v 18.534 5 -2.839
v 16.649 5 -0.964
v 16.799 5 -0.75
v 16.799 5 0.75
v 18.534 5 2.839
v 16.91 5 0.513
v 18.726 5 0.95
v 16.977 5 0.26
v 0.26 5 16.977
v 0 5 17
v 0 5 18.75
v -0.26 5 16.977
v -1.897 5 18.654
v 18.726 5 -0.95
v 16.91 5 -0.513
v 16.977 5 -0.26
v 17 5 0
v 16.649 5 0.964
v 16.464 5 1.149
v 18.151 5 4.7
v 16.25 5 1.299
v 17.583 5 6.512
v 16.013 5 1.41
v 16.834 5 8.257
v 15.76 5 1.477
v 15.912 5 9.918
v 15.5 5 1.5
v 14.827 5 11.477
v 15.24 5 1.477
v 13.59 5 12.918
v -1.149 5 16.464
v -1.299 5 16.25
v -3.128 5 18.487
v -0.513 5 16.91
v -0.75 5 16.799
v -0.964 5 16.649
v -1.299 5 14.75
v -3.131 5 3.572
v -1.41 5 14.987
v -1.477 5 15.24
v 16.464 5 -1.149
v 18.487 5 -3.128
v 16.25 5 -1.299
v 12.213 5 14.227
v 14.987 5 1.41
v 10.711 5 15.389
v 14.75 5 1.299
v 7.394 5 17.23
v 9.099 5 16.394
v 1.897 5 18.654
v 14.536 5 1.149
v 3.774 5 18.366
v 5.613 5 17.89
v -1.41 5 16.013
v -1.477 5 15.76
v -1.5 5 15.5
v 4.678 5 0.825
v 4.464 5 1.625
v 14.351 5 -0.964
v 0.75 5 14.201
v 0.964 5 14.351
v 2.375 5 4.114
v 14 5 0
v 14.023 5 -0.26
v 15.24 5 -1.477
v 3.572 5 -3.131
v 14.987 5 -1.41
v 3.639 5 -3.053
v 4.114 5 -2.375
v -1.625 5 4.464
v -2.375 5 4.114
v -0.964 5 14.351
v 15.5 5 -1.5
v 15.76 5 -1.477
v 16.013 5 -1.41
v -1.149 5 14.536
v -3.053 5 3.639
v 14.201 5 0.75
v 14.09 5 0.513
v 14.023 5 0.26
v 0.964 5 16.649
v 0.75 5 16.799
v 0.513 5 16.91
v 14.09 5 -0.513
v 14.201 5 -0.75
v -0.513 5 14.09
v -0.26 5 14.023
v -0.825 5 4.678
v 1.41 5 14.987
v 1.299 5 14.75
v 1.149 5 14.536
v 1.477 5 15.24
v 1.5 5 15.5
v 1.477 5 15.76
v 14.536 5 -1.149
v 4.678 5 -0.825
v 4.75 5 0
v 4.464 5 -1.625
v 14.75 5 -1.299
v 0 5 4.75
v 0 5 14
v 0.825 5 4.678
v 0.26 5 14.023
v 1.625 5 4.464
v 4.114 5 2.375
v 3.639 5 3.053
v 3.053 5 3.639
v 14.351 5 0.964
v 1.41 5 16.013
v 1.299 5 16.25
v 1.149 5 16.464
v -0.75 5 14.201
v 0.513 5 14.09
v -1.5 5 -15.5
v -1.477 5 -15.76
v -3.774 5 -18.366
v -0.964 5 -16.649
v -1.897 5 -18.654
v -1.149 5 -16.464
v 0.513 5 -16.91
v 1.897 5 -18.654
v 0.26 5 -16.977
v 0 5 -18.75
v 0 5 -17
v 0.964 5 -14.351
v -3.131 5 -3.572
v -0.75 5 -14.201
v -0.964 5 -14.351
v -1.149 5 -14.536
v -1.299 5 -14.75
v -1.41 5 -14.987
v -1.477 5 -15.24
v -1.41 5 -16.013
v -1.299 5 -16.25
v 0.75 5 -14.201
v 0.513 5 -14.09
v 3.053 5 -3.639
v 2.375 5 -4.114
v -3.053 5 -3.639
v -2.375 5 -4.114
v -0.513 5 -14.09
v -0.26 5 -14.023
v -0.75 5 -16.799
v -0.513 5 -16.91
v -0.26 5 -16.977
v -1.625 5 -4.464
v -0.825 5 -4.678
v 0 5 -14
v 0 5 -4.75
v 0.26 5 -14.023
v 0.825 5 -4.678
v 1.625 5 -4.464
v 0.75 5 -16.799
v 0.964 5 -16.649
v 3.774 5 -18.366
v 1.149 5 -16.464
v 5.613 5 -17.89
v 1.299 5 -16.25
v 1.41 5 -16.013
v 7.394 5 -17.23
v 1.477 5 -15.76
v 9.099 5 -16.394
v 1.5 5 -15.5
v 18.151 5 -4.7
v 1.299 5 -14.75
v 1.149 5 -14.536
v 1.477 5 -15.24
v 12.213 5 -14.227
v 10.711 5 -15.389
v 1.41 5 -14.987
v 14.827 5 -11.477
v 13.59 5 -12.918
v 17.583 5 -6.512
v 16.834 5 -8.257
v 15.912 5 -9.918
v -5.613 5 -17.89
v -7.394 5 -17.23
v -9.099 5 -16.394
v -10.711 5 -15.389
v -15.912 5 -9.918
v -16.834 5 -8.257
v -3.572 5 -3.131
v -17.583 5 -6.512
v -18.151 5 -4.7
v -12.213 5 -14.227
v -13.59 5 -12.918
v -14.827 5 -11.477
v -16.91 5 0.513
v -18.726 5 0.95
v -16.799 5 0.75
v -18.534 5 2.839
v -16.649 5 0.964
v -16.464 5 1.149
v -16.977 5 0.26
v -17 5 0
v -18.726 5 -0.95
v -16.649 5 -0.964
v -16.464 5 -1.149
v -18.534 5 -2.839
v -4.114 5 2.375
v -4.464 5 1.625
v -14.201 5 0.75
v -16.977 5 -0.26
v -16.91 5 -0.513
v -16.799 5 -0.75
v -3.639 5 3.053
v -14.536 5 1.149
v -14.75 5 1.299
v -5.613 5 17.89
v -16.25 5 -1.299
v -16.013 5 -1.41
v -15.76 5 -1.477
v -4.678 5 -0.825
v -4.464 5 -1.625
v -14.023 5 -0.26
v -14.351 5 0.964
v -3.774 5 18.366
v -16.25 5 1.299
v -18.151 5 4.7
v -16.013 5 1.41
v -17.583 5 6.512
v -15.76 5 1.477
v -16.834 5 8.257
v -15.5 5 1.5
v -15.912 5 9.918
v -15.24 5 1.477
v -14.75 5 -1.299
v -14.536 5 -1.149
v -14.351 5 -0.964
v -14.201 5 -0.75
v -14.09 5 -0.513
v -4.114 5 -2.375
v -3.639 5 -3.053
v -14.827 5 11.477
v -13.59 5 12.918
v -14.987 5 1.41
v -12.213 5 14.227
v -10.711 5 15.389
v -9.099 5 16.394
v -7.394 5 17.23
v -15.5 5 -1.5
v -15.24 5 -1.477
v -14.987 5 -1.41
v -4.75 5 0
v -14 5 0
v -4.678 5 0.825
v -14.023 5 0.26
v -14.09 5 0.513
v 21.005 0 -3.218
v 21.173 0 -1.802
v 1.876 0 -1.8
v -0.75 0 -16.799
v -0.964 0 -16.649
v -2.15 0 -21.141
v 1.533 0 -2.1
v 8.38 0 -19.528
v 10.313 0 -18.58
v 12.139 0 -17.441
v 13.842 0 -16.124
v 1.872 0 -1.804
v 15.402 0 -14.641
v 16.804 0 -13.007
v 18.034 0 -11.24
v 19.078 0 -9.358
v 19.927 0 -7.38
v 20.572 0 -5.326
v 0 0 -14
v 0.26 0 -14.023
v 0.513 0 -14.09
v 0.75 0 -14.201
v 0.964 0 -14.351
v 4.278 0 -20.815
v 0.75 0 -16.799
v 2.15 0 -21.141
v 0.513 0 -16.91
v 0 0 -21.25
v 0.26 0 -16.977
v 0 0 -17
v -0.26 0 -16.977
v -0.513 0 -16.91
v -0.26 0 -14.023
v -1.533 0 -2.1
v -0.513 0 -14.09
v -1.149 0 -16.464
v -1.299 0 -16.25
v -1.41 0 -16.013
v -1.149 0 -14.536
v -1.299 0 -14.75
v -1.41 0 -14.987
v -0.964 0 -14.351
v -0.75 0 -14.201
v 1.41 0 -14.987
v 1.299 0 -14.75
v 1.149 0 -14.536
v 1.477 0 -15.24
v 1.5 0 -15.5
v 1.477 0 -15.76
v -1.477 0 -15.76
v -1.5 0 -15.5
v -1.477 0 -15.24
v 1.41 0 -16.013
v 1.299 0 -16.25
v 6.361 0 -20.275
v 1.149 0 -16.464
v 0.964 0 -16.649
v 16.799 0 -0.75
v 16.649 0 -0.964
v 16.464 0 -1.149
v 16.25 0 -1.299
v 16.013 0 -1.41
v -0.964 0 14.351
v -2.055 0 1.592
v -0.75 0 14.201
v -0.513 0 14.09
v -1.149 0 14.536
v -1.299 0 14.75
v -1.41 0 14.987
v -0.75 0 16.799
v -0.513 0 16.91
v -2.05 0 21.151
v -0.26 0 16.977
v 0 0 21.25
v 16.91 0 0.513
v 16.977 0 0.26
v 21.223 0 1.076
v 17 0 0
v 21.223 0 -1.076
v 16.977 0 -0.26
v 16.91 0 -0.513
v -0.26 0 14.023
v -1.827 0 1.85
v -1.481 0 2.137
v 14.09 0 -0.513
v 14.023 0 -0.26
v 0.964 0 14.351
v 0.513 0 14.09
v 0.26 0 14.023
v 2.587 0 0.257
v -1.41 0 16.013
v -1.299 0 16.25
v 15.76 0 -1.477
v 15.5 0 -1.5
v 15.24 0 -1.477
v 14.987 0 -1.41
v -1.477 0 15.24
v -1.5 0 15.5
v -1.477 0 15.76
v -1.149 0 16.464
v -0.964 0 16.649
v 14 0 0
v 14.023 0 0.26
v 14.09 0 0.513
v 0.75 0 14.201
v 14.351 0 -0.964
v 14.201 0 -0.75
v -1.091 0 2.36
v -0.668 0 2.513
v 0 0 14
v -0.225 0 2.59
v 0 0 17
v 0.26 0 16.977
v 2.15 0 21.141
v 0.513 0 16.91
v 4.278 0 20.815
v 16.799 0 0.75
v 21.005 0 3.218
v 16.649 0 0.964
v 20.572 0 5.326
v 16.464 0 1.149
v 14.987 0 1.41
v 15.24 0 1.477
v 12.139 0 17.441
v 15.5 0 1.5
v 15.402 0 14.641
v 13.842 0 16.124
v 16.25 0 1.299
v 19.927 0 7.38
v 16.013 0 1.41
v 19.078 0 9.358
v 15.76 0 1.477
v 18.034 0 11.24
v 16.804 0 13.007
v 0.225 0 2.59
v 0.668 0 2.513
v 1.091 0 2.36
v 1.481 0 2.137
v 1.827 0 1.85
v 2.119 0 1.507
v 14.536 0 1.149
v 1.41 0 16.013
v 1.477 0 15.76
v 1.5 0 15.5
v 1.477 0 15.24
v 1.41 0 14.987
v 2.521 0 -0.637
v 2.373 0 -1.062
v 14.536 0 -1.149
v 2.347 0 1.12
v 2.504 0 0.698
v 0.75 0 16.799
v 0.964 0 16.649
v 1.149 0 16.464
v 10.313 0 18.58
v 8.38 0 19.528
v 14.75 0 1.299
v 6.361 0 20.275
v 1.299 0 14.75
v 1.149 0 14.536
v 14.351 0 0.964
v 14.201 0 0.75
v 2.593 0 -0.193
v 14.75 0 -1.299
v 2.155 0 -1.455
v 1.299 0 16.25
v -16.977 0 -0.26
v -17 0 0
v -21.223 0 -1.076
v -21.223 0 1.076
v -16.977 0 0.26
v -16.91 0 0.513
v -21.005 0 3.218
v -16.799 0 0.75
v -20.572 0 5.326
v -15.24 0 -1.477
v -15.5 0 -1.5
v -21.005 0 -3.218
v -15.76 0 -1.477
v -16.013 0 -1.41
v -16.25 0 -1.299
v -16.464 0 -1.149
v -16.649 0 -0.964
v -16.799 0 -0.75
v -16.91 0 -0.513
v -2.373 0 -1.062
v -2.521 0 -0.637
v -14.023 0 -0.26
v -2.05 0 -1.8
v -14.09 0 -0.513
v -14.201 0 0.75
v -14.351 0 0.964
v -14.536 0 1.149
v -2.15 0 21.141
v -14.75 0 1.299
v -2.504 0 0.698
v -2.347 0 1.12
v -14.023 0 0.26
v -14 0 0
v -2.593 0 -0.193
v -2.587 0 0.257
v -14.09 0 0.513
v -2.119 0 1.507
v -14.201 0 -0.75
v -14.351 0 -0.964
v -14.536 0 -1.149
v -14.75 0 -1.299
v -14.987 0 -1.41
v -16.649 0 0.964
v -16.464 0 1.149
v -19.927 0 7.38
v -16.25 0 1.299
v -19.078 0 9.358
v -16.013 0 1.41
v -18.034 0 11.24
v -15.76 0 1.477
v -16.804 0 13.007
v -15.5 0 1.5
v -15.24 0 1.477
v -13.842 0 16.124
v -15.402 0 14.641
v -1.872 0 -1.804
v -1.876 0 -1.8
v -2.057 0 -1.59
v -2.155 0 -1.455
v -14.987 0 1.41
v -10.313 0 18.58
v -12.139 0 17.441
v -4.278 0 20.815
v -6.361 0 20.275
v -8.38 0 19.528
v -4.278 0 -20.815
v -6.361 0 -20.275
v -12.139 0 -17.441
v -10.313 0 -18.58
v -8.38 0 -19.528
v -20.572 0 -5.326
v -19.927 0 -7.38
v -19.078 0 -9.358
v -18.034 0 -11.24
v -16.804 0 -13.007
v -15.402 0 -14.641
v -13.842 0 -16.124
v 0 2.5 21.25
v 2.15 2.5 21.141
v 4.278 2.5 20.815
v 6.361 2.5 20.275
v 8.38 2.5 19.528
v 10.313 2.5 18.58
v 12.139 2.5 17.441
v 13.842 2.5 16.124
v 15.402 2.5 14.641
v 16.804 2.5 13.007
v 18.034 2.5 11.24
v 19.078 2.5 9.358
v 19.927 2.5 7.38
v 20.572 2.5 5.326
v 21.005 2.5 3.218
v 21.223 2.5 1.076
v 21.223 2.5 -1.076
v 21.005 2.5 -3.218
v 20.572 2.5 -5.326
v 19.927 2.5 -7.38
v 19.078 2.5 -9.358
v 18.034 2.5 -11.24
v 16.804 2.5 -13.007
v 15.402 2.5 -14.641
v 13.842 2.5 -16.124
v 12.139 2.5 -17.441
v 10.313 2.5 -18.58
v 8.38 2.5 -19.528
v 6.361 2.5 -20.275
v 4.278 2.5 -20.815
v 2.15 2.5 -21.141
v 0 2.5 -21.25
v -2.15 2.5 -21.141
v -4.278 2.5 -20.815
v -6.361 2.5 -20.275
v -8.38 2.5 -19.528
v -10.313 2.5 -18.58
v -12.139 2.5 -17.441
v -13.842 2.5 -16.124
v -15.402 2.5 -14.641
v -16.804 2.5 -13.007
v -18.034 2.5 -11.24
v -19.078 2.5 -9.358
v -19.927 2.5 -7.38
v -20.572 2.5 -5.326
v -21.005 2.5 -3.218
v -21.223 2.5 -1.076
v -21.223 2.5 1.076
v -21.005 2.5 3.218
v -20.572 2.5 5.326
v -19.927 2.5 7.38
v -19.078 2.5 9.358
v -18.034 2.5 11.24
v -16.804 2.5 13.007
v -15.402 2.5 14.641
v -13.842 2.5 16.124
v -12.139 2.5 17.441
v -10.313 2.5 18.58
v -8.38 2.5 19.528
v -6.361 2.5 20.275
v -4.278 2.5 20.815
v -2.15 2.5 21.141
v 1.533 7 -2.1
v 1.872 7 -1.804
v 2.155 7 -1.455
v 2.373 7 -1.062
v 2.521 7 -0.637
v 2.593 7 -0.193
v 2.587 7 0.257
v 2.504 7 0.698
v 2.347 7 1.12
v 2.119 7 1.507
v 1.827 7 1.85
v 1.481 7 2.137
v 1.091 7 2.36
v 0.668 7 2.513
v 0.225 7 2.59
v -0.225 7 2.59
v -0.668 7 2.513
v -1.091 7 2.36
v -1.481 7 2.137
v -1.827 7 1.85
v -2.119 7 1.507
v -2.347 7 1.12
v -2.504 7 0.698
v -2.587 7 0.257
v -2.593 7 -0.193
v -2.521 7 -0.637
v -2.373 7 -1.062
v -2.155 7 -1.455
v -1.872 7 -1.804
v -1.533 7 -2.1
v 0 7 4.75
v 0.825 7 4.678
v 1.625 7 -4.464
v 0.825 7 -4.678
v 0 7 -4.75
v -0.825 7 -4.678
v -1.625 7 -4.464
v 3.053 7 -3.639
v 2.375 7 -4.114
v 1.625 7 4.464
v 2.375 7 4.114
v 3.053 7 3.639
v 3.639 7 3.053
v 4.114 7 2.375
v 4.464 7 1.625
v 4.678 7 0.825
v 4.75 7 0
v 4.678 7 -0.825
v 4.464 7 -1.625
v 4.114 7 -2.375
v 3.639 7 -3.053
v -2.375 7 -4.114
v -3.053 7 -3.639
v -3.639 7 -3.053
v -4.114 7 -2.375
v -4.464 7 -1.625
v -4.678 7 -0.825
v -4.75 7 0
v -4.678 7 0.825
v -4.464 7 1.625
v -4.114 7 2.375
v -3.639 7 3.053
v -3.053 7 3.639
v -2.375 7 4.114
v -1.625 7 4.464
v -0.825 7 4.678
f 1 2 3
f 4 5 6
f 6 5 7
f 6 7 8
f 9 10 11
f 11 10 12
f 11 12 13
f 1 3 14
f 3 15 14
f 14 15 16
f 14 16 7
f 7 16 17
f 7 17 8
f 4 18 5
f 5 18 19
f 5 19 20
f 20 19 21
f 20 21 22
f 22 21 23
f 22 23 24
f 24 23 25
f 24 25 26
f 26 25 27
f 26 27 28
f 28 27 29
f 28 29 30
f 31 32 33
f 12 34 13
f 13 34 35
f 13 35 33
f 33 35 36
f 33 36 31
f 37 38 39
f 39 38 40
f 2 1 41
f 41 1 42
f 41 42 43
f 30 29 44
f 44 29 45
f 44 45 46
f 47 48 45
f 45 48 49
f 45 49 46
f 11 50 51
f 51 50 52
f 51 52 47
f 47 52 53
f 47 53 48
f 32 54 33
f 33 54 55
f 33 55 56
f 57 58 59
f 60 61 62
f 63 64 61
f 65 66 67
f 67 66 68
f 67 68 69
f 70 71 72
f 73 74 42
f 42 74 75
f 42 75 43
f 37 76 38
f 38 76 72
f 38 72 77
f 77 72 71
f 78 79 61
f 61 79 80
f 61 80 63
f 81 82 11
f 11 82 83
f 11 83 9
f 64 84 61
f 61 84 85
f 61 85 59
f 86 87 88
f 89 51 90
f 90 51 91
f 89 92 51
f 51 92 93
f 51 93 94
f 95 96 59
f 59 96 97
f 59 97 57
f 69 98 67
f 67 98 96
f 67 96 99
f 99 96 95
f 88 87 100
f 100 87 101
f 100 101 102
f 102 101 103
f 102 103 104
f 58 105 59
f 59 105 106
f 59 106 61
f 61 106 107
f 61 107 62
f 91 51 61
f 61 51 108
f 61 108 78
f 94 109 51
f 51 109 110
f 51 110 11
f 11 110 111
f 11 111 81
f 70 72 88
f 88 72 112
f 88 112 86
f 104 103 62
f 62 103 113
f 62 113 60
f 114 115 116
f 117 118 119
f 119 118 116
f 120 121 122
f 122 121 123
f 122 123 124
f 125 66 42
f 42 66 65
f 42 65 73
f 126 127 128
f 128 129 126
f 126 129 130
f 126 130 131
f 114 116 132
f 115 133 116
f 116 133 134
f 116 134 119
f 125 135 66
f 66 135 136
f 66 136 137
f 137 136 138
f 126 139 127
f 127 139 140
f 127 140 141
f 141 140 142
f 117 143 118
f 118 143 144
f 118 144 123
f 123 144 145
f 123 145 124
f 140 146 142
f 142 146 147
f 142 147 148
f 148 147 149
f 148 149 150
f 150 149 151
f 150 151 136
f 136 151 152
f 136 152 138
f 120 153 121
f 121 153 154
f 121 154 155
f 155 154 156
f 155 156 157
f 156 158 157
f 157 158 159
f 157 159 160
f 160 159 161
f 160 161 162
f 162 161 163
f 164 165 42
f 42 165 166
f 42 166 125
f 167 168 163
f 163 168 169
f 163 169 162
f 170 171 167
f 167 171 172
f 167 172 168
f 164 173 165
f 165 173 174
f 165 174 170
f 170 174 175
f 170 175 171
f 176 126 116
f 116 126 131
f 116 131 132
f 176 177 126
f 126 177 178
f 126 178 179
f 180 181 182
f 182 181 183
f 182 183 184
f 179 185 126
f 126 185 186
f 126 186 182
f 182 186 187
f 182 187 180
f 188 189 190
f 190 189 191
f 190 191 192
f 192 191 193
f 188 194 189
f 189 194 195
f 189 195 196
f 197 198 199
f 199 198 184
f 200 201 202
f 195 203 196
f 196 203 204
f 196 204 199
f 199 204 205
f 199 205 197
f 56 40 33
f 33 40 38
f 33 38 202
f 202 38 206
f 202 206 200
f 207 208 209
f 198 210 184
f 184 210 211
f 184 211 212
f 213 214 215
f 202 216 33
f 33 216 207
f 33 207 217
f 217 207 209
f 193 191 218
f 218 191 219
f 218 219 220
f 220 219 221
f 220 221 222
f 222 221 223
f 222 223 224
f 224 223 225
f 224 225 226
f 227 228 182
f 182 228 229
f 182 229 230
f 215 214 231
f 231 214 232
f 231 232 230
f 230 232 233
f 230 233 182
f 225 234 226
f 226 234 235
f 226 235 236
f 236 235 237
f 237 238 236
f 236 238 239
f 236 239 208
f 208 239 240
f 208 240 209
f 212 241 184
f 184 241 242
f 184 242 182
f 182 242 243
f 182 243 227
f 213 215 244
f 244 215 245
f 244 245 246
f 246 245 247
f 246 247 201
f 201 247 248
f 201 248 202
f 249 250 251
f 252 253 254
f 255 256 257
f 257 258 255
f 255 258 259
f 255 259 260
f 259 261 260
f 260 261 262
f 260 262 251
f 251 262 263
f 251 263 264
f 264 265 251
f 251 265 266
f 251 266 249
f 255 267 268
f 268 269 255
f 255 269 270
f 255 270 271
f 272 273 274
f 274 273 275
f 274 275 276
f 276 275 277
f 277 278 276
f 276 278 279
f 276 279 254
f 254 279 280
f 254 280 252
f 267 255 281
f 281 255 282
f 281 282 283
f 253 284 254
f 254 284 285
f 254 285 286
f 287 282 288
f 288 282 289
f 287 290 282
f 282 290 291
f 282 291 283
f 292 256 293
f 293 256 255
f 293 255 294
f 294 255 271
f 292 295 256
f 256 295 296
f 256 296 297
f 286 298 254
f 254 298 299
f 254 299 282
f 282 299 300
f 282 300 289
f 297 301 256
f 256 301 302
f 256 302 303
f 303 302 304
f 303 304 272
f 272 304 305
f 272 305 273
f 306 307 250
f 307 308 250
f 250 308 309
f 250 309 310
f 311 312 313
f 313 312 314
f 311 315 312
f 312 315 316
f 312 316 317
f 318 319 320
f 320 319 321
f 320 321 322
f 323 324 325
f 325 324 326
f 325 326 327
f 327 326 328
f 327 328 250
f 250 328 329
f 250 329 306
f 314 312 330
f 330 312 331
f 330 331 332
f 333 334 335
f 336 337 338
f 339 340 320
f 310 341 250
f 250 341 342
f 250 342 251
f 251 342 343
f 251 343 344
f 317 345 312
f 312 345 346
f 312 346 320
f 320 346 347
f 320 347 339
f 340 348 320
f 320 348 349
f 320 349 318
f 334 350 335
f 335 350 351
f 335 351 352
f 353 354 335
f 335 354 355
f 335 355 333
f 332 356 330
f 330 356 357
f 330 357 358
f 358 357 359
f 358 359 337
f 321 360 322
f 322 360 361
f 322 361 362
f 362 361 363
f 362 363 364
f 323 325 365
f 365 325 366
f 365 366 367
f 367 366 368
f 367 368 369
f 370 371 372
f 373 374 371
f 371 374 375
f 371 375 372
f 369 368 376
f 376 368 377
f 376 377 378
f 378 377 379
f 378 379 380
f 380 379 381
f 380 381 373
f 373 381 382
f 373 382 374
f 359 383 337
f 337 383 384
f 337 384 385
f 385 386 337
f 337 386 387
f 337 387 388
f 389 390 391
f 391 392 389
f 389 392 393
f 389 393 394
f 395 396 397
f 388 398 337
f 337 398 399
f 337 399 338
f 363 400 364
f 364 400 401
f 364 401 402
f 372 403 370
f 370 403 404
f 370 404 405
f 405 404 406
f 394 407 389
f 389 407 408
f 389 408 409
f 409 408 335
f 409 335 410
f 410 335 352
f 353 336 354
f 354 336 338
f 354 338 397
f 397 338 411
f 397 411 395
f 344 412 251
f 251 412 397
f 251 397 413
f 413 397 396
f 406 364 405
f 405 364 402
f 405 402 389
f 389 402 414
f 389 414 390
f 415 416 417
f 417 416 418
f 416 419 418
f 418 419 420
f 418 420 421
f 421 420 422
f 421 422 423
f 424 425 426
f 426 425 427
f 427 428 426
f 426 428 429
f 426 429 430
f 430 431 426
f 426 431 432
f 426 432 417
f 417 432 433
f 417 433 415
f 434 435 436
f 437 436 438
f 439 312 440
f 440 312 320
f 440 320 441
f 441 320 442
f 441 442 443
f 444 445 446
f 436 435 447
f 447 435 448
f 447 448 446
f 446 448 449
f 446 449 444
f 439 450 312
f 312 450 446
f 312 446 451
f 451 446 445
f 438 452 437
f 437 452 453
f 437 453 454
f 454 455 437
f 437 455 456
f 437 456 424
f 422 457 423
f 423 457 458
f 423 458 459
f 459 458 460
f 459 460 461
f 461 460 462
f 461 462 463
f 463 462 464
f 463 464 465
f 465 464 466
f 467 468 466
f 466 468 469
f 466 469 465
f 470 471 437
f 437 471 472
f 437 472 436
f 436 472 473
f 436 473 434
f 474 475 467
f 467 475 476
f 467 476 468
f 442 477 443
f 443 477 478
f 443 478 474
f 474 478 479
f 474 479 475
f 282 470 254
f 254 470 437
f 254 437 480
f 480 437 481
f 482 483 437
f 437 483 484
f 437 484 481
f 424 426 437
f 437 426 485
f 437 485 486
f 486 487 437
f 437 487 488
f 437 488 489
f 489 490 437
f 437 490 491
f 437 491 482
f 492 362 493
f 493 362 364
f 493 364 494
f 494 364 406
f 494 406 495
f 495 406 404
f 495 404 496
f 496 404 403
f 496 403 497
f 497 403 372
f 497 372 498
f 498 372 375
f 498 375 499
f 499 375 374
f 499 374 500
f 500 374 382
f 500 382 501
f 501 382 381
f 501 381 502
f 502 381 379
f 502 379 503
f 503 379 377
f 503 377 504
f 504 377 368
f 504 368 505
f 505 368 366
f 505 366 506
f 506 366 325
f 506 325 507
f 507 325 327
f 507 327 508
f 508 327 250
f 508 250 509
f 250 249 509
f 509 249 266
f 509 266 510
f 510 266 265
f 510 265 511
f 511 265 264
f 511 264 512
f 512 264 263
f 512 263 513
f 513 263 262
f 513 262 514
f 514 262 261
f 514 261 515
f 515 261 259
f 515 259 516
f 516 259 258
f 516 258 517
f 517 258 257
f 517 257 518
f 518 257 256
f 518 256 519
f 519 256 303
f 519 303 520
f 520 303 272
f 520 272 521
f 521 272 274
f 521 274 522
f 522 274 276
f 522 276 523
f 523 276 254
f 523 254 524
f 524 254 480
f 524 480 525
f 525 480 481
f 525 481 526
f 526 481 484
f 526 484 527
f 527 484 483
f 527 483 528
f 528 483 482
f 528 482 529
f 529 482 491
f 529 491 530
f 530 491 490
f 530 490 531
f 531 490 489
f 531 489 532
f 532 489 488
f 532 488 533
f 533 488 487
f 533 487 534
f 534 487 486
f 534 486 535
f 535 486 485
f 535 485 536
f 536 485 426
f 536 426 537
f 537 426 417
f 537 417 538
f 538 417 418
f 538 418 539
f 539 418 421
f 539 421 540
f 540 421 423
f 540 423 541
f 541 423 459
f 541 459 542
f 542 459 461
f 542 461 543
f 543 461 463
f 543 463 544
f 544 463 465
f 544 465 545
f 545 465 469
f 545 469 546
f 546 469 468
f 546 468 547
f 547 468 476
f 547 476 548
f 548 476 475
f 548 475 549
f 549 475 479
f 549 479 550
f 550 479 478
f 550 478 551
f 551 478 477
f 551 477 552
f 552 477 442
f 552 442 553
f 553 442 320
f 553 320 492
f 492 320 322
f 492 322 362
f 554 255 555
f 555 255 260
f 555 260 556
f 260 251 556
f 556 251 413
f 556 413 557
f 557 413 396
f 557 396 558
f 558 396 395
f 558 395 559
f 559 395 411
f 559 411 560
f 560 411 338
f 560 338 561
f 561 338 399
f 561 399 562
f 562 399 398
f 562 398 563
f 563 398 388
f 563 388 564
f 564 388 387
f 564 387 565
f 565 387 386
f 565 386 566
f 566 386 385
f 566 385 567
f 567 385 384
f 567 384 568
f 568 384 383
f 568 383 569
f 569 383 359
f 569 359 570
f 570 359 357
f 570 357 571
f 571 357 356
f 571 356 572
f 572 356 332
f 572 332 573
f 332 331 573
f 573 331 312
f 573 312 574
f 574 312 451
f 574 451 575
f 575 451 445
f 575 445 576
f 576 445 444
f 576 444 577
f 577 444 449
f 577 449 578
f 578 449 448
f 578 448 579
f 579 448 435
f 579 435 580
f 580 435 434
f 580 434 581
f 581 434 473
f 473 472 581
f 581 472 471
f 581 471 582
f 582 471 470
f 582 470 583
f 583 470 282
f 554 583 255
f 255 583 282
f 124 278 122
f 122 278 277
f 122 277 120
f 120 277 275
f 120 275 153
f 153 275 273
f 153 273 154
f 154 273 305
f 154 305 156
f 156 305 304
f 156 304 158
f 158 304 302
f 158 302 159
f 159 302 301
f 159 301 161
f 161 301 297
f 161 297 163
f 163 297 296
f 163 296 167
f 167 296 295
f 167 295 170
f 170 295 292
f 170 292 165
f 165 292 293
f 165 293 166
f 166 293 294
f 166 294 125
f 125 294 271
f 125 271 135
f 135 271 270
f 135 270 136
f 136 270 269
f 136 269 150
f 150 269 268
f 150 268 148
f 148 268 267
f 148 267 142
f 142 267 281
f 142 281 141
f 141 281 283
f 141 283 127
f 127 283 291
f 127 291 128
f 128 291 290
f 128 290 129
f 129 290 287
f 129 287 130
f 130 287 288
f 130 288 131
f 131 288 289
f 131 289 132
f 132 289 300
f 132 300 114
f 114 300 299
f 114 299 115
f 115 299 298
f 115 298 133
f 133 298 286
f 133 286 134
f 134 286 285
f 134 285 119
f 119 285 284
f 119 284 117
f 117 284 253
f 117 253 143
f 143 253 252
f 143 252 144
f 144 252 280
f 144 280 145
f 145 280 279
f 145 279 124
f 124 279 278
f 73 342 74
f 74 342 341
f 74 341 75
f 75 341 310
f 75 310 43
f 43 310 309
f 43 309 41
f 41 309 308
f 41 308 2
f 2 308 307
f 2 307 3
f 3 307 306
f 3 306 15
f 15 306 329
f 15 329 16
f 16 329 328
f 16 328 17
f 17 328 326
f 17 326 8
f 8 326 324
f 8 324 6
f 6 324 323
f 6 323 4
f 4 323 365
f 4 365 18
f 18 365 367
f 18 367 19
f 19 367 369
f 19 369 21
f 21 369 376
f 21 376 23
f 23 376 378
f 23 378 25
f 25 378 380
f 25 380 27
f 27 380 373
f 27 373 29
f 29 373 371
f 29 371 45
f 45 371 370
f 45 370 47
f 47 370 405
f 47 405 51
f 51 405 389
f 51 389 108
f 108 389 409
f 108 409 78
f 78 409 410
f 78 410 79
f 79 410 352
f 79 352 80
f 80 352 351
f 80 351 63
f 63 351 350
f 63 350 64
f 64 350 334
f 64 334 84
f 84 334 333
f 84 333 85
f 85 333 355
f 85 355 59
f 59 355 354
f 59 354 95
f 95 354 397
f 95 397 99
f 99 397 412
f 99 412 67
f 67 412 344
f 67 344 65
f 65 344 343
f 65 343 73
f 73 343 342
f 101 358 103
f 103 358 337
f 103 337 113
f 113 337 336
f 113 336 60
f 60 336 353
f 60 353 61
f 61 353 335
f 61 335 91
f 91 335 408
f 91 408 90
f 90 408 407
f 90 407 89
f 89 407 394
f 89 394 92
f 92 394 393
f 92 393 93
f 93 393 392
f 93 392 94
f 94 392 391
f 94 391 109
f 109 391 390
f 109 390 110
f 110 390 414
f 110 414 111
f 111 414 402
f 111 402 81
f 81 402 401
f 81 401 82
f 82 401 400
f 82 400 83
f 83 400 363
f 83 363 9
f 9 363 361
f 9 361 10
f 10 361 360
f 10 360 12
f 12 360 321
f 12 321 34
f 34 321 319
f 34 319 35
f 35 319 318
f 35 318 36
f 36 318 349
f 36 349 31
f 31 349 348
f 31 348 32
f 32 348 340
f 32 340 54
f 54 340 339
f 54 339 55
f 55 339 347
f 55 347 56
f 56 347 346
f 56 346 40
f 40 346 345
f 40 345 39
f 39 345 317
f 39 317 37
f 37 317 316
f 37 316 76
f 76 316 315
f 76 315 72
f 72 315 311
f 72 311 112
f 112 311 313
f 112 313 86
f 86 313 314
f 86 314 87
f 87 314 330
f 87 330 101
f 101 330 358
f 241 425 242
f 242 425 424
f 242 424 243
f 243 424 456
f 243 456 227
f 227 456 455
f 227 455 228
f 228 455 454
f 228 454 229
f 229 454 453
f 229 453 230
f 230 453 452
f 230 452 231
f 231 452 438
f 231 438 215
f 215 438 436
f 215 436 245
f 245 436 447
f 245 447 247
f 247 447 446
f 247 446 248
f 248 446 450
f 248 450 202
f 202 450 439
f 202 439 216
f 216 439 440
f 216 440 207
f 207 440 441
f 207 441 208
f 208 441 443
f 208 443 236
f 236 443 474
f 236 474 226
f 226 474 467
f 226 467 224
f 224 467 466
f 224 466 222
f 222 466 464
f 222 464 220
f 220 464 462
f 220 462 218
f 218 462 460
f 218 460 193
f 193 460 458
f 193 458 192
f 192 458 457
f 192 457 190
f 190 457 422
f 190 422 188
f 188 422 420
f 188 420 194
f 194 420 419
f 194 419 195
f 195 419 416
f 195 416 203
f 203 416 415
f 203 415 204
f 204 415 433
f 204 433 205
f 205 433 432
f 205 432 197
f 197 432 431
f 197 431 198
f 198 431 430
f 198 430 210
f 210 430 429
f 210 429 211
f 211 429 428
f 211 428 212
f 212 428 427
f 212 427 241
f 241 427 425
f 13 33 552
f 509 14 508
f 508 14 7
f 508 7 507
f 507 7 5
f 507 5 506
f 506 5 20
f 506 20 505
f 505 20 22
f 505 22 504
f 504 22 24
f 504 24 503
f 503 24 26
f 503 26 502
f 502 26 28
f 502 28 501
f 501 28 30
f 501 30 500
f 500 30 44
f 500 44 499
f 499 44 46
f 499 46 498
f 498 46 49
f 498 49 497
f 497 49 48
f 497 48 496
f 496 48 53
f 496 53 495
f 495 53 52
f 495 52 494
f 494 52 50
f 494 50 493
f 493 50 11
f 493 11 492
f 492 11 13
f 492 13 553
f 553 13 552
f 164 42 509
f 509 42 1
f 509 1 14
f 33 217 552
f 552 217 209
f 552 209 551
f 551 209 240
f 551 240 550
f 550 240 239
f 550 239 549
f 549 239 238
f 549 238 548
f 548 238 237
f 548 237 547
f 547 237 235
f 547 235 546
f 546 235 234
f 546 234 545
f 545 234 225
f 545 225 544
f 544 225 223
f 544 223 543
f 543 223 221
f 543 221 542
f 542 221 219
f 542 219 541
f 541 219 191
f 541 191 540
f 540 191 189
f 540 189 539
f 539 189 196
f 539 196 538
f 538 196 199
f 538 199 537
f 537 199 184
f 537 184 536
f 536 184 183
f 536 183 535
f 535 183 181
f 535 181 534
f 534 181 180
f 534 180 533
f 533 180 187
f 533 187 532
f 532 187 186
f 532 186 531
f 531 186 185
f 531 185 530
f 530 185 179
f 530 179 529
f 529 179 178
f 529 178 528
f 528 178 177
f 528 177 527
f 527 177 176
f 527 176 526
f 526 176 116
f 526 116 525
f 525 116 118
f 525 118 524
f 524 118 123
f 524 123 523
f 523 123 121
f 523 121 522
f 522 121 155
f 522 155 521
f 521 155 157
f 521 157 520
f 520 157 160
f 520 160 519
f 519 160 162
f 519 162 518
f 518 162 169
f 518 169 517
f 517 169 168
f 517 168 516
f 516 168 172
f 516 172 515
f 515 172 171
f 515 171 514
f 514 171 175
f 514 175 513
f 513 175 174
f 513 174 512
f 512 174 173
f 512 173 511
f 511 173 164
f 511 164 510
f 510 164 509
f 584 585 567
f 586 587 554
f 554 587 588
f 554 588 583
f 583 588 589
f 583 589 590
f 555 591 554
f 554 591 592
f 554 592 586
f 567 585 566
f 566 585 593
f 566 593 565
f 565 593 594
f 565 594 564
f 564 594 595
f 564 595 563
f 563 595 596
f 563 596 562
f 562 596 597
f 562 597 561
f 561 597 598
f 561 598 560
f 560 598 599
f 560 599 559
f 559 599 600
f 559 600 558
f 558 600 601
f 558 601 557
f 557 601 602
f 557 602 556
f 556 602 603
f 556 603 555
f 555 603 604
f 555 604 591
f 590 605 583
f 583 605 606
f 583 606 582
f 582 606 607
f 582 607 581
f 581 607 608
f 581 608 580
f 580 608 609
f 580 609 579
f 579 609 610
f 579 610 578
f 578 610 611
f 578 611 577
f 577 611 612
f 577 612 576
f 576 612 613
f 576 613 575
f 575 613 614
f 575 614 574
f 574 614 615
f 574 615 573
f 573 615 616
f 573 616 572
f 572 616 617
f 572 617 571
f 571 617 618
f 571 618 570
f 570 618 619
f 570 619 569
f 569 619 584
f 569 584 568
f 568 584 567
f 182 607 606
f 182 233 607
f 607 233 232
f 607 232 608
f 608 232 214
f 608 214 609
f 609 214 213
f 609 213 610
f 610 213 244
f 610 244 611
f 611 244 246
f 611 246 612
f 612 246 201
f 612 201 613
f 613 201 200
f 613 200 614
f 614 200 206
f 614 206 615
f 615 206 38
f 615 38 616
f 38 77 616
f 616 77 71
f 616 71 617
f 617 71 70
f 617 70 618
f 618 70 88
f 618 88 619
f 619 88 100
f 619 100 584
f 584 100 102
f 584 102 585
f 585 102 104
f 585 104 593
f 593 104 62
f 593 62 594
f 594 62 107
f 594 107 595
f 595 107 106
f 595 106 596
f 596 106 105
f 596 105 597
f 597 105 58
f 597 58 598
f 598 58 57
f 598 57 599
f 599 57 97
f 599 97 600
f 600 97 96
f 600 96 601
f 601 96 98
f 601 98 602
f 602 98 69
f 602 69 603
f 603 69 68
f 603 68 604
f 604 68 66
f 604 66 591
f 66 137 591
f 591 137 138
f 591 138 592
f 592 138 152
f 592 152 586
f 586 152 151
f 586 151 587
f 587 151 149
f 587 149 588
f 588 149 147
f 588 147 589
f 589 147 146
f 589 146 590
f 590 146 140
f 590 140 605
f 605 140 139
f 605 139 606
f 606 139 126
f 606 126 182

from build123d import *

# Parameters (mm, degrees)
SKETCH1_R           = 21.25
SKETCH1_R_2         = 1.5
BOSS_EXTRUDE1_DEPTH = 5
CHAMFER1_SIZE       = 2.5
SKETCH2_R           = 4.75
BOSS_EXTRUDE2_DEPTH = 2


with BuildPart() as part:
    # Sketch1 → Boss-Extrude1 (new body)
    with BuildSketch(Plane(origin=(0, 0, 0), x_dir=(1, 0, 0), z_dir=(0, 1, 0))):
        with Locations(Location((0, 0, 0), (0, 0, 270))):
            Circle(SKETCH1_R)
        with Locations(Location((0, 15.5, 0), (0, 0, 270))):
            Circle(SKETCH1_R_2, mode=Mode.SUBTRACT)
        with Locations(Location((15.5, 0, 0), (0, 0, 270))):
            Circle(SKETCH1_R_2, mode=Mode.SUBTRACT)
        with Locations(Location((0, -15.5, 0), (0, 0, 270))):
            Circle(SKETCH1_R_2, mode=Mode.SUBTRACT)
        with Locations(Location((-15.5, 0, 0), (0, 0, 270))):
            Circle(SKETCH1_R_2, mode=Mode.SUBTRACT)
        with BuildLine():
            Line((-1.532970972, 2.1), (1.532970972, 2.1))
            ThreePointArc((1.532970972, 2.1), (0, -2.6), (-1.532970972, 2.1))
        make_face(mode=Mode.SUBTRACT)
    extrude(amount=BOSS_EXTRUDE1_DEPTH)

    # Chamfer1
    chamfer1_edges = [part.edges().sort_by_distance(p)[0] for p in [
        (0, 5, -21.25),
    ]]
    chamfer(chamfer1_edges, length=CHAMFER1_SIZE)

    # Sketch2 → Boss-Extrude2 (add)
    with BuildSketch(Plane(origin=(0, 5, 0), x_dir=(1, 0, 0), z_dir=(0, 1, 0))):
        with Locations(Location((0, 0, 0), (0, 0, 270))):
            Circle(SKETCH2_R)
        with BuildLine():
            Line((1.532970972, 2.1), (-1.532970972, 2.1))
            ThreePointArc((-1.532970972, 2.1), (0, -2.6), (1.532970972, 2.1))
        make_face(mode=Mode.SUBTRACT)
    extrude(amount=BOSS_EXTRUDE2_DEPTH)


solid = part.part
